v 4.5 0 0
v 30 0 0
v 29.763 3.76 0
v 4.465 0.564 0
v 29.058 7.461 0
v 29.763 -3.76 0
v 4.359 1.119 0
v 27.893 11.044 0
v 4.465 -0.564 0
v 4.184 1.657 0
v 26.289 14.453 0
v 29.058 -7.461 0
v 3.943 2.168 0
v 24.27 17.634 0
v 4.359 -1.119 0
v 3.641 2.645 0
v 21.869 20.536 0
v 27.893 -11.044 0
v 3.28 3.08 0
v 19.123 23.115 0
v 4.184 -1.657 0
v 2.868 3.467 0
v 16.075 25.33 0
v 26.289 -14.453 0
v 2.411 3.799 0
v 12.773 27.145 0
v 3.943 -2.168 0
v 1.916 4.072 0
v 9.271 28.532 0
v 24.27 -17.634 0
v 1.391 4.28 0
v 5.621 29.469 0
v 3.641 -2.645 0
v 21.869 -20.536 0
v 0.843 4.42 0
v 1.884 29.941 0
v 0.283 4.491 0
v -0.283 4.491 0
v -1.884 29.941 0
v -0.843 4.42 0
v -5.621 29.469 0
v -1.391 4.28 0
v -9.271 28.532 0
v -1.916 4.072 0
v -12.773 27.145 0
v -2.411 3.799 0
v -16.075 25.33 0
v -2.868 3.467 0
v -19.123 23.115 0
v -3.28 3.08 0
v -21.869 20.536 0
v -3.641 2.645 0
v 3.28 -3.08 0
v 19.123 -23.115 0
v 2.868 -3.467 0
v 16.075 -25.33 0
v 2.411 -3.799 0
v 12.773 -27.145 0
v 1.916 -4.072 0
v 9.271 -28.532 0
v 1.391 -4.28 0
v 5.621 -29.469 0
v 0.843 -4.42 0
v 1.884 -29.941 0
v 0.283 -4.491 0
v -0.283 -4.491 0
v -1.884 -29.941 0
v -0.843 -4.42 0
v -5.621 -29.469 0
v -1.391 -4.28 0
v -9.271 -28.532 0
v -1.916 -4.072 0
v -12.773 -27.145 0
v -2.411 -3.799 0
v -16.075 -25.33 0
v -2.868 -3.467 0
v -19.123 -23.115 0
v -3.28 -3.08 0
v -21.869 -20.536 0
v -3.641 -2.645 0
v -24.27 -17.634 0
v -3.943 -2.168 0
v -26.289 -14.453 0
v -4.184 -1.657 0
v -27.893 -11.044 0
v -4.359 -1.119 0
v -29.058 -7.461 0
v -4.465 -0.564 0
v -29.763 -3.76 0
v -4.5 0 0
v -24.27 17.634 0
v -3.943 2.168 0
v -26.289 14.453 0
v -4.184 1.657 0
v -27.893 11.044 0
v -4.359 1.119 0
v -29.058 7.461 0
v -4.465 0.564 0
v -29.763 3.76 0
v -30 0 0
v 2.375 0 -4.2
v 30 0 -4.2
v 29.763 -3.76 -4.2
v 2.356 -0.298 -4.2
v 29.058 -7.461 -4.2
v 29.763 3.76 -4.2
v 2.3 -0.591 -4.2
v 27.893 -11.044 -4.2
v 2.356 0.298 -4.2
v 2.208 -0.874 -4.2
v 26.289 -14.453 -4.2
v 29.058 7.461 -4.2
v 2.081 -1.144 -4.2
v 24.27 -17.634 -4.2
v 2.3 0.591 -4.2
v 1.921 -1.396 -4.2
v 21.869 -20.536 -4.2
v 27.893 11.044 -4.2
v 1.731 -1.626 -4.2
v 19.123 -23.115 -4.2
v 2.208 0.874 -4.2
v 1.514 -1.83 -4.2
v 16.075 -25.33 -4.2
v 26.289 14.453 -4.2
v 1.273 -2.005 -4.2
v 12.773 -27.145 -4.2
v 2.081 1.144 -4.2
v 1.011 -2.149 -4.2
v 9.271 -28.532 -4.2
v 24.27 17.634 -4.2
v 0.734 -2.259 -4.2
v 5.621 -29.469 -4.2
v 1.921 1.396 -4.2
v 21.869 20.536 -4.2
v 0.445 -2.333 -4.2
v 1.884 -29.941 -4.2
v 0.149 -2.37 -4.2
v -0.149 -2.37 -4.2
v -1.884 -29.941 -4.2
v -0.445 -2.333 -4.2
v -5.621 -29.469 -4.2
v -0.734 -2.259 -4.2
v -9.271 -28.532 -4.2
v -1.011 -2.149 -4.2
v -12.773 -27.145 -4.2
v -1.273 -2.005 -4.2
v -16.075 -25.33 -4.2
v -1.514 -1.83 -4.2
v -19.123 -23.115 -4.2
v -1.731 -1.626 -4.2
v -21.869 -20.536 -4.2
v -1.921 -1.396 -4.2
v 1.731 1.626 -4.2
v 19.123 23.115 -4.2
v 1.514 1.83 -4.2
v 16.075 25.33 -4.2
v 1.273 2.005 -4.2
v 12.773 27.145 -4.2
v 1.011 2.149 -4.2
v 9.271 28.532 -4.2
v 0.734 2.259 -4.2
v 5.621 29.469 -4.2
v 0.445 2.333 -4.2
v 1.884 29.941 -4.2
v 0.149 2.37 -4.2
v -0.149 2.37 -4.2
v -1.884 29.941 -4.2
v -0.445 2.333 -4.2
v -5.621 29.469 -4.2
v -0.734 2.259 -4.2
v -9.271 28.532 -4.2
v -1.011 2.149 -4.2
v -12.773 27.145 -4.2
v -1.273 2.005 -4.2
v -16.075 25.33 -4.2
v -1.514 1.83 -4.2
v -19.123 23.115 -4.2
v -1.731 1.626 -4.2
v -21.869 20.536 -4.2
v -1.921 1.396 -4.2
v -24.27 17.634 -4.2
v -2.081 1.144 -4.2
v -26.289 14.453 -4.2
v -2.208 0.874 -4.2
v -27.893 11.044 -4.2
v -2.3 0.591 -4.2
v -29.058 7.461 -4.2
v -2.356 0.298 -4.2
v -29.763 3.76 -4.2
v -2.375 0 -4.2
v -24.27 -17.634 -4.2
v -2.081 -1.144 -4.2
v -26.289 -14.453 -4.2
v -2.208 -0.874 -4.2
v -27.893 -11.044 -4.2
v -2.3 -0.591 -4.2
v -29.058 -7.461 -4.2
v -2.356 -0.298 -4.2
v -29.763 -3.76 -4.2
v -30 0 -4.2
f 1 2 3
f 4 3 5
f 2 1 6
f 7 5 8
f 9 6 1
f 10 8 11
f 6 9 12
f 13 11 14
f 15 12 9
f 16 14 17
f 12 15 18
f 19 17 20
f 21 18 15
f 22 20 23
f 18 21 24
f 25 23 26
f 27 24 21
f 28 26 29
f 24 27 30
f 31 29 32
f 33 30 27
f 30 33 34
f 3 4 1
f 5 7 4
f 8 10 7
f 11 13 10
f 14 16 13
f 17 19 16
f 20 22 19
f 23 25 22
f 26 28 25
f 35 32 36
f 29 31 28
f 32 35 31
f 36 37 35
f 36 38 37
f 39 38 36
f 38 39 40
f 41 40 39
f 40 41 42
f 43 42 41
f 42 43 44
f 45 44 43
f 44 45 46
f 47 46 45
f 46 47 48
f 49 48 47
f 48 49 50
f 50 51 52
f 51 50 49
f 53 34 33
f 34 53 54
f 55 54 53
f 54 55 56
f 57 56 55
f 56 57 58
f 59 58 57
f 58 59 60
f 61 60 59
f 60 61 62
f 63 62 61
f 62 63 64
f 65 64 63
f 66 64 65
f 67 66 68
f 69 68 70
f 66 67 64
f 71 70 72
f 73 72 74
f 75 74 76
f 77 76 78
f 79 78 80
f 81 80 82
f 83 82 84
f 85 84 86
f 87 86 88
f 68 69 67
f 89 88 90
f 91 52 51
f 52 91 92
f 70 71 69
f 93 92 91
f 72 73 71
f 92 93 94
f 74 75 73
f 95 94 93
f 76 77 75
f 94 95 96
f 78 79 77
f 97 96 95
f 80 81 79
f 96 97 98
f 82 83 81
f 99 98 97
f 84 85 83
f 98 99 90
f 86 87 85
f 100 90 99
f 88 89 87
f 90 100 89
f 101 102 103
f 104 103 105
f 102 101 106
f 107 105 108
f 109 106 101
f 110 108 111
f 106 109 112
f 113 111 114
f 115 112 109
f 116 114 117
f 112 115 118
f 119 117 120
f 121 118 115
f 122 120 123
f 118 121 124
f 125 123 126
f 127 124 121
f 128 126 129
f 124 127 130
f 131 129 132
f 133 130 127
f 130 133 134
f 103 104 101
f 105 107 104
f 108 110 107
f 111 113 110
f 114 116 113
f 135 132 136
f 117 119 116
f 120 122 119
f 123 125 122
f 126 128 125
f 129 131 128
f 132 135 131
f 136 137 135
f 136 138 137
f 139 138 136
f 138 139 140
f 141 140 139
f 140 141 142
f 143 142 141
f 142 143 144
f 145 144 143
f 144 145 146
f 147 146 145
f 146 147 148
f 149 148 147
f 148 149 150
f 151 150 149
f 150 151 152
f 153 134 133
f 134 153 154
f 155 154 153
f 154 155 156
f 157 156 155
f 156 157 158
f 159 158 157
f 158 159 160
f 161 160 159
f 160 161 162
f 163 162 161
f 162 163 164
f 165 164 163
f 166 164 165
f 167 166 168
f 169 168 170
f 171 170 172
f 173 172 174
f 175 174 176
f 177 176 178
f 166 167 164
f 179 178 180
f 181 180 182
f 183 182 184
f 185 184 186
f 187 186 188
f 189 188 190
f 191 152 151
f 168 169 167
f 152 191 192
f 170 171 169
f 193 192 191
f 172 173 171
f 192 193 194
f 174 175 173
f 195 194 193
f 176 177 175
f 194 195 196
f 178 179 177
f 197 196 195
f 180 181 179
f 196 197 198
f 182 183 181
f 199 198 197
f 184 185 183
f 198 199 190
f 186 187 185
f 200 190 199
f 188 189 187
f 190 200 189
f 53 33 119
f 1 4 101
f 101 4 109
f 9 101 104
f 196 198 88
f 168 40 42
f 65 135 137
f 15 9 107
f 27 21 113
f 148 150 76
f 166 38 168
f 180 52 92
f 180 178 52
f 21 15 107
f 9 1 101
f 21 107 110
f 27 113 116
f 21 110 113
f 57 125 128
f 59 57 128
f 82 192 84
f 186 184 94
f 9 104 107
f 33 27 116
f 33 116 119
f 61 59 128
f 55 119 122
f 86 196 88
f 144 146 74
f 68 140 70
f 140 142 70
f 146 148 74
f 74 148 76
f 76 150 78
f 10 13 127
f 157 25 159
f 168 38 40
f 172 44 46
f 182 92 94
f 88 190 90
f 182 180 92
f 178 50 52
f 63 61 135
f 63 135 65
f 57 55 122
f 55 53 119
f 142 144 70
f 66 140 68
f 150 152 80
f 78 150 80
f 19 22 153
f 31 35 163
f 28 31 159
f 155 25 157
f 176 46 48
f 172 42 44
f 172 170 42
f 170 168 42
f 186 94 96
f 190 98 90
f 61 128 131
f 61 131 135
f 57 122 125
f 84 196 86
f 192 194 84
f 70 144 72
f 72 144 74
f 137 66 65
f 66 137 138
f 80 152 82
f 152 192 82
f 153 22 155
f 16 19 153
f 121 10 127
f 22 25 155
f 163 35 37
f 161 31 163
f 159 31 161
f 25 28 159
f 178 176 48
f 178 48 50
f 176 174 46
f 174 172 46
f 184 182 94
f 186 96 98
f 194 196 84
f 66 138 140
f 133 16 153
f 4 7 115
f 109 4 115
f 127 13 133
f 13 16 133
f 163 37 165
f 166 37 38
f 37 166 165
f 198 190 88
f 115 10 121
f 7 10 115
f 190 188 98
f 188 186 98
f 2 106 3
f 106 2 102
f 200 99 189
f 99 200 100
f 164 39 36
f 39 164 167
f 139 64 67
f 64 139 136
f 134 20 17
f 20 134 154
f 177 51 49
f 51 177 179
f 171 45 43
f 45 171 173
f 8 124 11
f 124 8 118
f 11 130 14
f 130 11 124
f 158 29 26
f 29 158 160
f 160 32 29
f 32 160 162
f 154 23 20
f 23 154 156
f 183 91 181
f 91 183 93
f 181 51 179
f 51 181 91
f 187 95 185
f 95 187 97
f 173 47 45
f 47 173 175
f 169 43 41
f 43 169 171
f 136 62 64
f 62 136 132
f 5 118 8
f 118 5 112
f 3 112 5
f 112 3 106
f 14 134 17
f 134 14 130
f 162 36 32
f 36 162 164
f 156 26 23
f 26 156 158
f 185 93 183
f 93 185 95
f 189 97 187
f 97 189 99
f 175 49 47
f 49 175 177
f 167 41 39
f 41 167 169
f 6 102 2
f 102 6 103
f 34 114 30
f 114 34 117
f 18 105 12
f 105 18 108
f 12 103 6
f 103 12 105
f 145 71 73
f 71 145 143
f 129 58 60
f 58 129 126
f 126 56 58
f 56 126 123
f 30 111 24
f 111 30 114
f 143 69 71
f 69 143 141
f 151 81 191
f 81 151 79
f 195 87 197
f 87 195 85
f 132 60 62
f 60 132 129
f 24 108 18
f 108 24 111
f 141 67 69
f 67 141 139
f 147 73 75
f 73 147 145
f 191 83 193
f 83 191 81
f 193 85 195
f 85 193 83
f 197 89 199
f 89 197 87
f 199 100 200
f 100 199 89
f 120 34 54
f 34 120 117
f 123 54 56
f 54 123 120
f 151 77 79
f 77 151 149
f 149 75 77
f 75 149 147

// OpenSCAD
$fn = 50;


difference() {
	union() {
		translate(v = [0, 0, -4.2000000000]) {
			cylinder(h = 4.2000000000, r = 30.0000000000);
		}
	}
	union() {
		translate(v = [0, 0, 0]) {
			rotate(a = [0, 0, 0]) {
				difference() {
					union() {
						#translate(v = [0, 0, -4.2000000000]) {
							cylinder(h = 4.2000000000, r = 2.2500000000);
						}
						#translate(v = [0, 0, -4.2000000000]) {
							cylinder(h = 4.2000000000, r1 = 2.3750000000, r2 = 4.5000000000);
						}
						#translate(v = [0, 0, -4.2000000000]) {
							cylinder(h = 4.2000000000, r = 2.3750000000);
						}
						#translate(v = [0, 0, -4.2000000000]) {
							cylinder(h = 4.2000000000, r = 2.2500000000);
						}
					}
					union();
				}
			}
		}
	}
}
